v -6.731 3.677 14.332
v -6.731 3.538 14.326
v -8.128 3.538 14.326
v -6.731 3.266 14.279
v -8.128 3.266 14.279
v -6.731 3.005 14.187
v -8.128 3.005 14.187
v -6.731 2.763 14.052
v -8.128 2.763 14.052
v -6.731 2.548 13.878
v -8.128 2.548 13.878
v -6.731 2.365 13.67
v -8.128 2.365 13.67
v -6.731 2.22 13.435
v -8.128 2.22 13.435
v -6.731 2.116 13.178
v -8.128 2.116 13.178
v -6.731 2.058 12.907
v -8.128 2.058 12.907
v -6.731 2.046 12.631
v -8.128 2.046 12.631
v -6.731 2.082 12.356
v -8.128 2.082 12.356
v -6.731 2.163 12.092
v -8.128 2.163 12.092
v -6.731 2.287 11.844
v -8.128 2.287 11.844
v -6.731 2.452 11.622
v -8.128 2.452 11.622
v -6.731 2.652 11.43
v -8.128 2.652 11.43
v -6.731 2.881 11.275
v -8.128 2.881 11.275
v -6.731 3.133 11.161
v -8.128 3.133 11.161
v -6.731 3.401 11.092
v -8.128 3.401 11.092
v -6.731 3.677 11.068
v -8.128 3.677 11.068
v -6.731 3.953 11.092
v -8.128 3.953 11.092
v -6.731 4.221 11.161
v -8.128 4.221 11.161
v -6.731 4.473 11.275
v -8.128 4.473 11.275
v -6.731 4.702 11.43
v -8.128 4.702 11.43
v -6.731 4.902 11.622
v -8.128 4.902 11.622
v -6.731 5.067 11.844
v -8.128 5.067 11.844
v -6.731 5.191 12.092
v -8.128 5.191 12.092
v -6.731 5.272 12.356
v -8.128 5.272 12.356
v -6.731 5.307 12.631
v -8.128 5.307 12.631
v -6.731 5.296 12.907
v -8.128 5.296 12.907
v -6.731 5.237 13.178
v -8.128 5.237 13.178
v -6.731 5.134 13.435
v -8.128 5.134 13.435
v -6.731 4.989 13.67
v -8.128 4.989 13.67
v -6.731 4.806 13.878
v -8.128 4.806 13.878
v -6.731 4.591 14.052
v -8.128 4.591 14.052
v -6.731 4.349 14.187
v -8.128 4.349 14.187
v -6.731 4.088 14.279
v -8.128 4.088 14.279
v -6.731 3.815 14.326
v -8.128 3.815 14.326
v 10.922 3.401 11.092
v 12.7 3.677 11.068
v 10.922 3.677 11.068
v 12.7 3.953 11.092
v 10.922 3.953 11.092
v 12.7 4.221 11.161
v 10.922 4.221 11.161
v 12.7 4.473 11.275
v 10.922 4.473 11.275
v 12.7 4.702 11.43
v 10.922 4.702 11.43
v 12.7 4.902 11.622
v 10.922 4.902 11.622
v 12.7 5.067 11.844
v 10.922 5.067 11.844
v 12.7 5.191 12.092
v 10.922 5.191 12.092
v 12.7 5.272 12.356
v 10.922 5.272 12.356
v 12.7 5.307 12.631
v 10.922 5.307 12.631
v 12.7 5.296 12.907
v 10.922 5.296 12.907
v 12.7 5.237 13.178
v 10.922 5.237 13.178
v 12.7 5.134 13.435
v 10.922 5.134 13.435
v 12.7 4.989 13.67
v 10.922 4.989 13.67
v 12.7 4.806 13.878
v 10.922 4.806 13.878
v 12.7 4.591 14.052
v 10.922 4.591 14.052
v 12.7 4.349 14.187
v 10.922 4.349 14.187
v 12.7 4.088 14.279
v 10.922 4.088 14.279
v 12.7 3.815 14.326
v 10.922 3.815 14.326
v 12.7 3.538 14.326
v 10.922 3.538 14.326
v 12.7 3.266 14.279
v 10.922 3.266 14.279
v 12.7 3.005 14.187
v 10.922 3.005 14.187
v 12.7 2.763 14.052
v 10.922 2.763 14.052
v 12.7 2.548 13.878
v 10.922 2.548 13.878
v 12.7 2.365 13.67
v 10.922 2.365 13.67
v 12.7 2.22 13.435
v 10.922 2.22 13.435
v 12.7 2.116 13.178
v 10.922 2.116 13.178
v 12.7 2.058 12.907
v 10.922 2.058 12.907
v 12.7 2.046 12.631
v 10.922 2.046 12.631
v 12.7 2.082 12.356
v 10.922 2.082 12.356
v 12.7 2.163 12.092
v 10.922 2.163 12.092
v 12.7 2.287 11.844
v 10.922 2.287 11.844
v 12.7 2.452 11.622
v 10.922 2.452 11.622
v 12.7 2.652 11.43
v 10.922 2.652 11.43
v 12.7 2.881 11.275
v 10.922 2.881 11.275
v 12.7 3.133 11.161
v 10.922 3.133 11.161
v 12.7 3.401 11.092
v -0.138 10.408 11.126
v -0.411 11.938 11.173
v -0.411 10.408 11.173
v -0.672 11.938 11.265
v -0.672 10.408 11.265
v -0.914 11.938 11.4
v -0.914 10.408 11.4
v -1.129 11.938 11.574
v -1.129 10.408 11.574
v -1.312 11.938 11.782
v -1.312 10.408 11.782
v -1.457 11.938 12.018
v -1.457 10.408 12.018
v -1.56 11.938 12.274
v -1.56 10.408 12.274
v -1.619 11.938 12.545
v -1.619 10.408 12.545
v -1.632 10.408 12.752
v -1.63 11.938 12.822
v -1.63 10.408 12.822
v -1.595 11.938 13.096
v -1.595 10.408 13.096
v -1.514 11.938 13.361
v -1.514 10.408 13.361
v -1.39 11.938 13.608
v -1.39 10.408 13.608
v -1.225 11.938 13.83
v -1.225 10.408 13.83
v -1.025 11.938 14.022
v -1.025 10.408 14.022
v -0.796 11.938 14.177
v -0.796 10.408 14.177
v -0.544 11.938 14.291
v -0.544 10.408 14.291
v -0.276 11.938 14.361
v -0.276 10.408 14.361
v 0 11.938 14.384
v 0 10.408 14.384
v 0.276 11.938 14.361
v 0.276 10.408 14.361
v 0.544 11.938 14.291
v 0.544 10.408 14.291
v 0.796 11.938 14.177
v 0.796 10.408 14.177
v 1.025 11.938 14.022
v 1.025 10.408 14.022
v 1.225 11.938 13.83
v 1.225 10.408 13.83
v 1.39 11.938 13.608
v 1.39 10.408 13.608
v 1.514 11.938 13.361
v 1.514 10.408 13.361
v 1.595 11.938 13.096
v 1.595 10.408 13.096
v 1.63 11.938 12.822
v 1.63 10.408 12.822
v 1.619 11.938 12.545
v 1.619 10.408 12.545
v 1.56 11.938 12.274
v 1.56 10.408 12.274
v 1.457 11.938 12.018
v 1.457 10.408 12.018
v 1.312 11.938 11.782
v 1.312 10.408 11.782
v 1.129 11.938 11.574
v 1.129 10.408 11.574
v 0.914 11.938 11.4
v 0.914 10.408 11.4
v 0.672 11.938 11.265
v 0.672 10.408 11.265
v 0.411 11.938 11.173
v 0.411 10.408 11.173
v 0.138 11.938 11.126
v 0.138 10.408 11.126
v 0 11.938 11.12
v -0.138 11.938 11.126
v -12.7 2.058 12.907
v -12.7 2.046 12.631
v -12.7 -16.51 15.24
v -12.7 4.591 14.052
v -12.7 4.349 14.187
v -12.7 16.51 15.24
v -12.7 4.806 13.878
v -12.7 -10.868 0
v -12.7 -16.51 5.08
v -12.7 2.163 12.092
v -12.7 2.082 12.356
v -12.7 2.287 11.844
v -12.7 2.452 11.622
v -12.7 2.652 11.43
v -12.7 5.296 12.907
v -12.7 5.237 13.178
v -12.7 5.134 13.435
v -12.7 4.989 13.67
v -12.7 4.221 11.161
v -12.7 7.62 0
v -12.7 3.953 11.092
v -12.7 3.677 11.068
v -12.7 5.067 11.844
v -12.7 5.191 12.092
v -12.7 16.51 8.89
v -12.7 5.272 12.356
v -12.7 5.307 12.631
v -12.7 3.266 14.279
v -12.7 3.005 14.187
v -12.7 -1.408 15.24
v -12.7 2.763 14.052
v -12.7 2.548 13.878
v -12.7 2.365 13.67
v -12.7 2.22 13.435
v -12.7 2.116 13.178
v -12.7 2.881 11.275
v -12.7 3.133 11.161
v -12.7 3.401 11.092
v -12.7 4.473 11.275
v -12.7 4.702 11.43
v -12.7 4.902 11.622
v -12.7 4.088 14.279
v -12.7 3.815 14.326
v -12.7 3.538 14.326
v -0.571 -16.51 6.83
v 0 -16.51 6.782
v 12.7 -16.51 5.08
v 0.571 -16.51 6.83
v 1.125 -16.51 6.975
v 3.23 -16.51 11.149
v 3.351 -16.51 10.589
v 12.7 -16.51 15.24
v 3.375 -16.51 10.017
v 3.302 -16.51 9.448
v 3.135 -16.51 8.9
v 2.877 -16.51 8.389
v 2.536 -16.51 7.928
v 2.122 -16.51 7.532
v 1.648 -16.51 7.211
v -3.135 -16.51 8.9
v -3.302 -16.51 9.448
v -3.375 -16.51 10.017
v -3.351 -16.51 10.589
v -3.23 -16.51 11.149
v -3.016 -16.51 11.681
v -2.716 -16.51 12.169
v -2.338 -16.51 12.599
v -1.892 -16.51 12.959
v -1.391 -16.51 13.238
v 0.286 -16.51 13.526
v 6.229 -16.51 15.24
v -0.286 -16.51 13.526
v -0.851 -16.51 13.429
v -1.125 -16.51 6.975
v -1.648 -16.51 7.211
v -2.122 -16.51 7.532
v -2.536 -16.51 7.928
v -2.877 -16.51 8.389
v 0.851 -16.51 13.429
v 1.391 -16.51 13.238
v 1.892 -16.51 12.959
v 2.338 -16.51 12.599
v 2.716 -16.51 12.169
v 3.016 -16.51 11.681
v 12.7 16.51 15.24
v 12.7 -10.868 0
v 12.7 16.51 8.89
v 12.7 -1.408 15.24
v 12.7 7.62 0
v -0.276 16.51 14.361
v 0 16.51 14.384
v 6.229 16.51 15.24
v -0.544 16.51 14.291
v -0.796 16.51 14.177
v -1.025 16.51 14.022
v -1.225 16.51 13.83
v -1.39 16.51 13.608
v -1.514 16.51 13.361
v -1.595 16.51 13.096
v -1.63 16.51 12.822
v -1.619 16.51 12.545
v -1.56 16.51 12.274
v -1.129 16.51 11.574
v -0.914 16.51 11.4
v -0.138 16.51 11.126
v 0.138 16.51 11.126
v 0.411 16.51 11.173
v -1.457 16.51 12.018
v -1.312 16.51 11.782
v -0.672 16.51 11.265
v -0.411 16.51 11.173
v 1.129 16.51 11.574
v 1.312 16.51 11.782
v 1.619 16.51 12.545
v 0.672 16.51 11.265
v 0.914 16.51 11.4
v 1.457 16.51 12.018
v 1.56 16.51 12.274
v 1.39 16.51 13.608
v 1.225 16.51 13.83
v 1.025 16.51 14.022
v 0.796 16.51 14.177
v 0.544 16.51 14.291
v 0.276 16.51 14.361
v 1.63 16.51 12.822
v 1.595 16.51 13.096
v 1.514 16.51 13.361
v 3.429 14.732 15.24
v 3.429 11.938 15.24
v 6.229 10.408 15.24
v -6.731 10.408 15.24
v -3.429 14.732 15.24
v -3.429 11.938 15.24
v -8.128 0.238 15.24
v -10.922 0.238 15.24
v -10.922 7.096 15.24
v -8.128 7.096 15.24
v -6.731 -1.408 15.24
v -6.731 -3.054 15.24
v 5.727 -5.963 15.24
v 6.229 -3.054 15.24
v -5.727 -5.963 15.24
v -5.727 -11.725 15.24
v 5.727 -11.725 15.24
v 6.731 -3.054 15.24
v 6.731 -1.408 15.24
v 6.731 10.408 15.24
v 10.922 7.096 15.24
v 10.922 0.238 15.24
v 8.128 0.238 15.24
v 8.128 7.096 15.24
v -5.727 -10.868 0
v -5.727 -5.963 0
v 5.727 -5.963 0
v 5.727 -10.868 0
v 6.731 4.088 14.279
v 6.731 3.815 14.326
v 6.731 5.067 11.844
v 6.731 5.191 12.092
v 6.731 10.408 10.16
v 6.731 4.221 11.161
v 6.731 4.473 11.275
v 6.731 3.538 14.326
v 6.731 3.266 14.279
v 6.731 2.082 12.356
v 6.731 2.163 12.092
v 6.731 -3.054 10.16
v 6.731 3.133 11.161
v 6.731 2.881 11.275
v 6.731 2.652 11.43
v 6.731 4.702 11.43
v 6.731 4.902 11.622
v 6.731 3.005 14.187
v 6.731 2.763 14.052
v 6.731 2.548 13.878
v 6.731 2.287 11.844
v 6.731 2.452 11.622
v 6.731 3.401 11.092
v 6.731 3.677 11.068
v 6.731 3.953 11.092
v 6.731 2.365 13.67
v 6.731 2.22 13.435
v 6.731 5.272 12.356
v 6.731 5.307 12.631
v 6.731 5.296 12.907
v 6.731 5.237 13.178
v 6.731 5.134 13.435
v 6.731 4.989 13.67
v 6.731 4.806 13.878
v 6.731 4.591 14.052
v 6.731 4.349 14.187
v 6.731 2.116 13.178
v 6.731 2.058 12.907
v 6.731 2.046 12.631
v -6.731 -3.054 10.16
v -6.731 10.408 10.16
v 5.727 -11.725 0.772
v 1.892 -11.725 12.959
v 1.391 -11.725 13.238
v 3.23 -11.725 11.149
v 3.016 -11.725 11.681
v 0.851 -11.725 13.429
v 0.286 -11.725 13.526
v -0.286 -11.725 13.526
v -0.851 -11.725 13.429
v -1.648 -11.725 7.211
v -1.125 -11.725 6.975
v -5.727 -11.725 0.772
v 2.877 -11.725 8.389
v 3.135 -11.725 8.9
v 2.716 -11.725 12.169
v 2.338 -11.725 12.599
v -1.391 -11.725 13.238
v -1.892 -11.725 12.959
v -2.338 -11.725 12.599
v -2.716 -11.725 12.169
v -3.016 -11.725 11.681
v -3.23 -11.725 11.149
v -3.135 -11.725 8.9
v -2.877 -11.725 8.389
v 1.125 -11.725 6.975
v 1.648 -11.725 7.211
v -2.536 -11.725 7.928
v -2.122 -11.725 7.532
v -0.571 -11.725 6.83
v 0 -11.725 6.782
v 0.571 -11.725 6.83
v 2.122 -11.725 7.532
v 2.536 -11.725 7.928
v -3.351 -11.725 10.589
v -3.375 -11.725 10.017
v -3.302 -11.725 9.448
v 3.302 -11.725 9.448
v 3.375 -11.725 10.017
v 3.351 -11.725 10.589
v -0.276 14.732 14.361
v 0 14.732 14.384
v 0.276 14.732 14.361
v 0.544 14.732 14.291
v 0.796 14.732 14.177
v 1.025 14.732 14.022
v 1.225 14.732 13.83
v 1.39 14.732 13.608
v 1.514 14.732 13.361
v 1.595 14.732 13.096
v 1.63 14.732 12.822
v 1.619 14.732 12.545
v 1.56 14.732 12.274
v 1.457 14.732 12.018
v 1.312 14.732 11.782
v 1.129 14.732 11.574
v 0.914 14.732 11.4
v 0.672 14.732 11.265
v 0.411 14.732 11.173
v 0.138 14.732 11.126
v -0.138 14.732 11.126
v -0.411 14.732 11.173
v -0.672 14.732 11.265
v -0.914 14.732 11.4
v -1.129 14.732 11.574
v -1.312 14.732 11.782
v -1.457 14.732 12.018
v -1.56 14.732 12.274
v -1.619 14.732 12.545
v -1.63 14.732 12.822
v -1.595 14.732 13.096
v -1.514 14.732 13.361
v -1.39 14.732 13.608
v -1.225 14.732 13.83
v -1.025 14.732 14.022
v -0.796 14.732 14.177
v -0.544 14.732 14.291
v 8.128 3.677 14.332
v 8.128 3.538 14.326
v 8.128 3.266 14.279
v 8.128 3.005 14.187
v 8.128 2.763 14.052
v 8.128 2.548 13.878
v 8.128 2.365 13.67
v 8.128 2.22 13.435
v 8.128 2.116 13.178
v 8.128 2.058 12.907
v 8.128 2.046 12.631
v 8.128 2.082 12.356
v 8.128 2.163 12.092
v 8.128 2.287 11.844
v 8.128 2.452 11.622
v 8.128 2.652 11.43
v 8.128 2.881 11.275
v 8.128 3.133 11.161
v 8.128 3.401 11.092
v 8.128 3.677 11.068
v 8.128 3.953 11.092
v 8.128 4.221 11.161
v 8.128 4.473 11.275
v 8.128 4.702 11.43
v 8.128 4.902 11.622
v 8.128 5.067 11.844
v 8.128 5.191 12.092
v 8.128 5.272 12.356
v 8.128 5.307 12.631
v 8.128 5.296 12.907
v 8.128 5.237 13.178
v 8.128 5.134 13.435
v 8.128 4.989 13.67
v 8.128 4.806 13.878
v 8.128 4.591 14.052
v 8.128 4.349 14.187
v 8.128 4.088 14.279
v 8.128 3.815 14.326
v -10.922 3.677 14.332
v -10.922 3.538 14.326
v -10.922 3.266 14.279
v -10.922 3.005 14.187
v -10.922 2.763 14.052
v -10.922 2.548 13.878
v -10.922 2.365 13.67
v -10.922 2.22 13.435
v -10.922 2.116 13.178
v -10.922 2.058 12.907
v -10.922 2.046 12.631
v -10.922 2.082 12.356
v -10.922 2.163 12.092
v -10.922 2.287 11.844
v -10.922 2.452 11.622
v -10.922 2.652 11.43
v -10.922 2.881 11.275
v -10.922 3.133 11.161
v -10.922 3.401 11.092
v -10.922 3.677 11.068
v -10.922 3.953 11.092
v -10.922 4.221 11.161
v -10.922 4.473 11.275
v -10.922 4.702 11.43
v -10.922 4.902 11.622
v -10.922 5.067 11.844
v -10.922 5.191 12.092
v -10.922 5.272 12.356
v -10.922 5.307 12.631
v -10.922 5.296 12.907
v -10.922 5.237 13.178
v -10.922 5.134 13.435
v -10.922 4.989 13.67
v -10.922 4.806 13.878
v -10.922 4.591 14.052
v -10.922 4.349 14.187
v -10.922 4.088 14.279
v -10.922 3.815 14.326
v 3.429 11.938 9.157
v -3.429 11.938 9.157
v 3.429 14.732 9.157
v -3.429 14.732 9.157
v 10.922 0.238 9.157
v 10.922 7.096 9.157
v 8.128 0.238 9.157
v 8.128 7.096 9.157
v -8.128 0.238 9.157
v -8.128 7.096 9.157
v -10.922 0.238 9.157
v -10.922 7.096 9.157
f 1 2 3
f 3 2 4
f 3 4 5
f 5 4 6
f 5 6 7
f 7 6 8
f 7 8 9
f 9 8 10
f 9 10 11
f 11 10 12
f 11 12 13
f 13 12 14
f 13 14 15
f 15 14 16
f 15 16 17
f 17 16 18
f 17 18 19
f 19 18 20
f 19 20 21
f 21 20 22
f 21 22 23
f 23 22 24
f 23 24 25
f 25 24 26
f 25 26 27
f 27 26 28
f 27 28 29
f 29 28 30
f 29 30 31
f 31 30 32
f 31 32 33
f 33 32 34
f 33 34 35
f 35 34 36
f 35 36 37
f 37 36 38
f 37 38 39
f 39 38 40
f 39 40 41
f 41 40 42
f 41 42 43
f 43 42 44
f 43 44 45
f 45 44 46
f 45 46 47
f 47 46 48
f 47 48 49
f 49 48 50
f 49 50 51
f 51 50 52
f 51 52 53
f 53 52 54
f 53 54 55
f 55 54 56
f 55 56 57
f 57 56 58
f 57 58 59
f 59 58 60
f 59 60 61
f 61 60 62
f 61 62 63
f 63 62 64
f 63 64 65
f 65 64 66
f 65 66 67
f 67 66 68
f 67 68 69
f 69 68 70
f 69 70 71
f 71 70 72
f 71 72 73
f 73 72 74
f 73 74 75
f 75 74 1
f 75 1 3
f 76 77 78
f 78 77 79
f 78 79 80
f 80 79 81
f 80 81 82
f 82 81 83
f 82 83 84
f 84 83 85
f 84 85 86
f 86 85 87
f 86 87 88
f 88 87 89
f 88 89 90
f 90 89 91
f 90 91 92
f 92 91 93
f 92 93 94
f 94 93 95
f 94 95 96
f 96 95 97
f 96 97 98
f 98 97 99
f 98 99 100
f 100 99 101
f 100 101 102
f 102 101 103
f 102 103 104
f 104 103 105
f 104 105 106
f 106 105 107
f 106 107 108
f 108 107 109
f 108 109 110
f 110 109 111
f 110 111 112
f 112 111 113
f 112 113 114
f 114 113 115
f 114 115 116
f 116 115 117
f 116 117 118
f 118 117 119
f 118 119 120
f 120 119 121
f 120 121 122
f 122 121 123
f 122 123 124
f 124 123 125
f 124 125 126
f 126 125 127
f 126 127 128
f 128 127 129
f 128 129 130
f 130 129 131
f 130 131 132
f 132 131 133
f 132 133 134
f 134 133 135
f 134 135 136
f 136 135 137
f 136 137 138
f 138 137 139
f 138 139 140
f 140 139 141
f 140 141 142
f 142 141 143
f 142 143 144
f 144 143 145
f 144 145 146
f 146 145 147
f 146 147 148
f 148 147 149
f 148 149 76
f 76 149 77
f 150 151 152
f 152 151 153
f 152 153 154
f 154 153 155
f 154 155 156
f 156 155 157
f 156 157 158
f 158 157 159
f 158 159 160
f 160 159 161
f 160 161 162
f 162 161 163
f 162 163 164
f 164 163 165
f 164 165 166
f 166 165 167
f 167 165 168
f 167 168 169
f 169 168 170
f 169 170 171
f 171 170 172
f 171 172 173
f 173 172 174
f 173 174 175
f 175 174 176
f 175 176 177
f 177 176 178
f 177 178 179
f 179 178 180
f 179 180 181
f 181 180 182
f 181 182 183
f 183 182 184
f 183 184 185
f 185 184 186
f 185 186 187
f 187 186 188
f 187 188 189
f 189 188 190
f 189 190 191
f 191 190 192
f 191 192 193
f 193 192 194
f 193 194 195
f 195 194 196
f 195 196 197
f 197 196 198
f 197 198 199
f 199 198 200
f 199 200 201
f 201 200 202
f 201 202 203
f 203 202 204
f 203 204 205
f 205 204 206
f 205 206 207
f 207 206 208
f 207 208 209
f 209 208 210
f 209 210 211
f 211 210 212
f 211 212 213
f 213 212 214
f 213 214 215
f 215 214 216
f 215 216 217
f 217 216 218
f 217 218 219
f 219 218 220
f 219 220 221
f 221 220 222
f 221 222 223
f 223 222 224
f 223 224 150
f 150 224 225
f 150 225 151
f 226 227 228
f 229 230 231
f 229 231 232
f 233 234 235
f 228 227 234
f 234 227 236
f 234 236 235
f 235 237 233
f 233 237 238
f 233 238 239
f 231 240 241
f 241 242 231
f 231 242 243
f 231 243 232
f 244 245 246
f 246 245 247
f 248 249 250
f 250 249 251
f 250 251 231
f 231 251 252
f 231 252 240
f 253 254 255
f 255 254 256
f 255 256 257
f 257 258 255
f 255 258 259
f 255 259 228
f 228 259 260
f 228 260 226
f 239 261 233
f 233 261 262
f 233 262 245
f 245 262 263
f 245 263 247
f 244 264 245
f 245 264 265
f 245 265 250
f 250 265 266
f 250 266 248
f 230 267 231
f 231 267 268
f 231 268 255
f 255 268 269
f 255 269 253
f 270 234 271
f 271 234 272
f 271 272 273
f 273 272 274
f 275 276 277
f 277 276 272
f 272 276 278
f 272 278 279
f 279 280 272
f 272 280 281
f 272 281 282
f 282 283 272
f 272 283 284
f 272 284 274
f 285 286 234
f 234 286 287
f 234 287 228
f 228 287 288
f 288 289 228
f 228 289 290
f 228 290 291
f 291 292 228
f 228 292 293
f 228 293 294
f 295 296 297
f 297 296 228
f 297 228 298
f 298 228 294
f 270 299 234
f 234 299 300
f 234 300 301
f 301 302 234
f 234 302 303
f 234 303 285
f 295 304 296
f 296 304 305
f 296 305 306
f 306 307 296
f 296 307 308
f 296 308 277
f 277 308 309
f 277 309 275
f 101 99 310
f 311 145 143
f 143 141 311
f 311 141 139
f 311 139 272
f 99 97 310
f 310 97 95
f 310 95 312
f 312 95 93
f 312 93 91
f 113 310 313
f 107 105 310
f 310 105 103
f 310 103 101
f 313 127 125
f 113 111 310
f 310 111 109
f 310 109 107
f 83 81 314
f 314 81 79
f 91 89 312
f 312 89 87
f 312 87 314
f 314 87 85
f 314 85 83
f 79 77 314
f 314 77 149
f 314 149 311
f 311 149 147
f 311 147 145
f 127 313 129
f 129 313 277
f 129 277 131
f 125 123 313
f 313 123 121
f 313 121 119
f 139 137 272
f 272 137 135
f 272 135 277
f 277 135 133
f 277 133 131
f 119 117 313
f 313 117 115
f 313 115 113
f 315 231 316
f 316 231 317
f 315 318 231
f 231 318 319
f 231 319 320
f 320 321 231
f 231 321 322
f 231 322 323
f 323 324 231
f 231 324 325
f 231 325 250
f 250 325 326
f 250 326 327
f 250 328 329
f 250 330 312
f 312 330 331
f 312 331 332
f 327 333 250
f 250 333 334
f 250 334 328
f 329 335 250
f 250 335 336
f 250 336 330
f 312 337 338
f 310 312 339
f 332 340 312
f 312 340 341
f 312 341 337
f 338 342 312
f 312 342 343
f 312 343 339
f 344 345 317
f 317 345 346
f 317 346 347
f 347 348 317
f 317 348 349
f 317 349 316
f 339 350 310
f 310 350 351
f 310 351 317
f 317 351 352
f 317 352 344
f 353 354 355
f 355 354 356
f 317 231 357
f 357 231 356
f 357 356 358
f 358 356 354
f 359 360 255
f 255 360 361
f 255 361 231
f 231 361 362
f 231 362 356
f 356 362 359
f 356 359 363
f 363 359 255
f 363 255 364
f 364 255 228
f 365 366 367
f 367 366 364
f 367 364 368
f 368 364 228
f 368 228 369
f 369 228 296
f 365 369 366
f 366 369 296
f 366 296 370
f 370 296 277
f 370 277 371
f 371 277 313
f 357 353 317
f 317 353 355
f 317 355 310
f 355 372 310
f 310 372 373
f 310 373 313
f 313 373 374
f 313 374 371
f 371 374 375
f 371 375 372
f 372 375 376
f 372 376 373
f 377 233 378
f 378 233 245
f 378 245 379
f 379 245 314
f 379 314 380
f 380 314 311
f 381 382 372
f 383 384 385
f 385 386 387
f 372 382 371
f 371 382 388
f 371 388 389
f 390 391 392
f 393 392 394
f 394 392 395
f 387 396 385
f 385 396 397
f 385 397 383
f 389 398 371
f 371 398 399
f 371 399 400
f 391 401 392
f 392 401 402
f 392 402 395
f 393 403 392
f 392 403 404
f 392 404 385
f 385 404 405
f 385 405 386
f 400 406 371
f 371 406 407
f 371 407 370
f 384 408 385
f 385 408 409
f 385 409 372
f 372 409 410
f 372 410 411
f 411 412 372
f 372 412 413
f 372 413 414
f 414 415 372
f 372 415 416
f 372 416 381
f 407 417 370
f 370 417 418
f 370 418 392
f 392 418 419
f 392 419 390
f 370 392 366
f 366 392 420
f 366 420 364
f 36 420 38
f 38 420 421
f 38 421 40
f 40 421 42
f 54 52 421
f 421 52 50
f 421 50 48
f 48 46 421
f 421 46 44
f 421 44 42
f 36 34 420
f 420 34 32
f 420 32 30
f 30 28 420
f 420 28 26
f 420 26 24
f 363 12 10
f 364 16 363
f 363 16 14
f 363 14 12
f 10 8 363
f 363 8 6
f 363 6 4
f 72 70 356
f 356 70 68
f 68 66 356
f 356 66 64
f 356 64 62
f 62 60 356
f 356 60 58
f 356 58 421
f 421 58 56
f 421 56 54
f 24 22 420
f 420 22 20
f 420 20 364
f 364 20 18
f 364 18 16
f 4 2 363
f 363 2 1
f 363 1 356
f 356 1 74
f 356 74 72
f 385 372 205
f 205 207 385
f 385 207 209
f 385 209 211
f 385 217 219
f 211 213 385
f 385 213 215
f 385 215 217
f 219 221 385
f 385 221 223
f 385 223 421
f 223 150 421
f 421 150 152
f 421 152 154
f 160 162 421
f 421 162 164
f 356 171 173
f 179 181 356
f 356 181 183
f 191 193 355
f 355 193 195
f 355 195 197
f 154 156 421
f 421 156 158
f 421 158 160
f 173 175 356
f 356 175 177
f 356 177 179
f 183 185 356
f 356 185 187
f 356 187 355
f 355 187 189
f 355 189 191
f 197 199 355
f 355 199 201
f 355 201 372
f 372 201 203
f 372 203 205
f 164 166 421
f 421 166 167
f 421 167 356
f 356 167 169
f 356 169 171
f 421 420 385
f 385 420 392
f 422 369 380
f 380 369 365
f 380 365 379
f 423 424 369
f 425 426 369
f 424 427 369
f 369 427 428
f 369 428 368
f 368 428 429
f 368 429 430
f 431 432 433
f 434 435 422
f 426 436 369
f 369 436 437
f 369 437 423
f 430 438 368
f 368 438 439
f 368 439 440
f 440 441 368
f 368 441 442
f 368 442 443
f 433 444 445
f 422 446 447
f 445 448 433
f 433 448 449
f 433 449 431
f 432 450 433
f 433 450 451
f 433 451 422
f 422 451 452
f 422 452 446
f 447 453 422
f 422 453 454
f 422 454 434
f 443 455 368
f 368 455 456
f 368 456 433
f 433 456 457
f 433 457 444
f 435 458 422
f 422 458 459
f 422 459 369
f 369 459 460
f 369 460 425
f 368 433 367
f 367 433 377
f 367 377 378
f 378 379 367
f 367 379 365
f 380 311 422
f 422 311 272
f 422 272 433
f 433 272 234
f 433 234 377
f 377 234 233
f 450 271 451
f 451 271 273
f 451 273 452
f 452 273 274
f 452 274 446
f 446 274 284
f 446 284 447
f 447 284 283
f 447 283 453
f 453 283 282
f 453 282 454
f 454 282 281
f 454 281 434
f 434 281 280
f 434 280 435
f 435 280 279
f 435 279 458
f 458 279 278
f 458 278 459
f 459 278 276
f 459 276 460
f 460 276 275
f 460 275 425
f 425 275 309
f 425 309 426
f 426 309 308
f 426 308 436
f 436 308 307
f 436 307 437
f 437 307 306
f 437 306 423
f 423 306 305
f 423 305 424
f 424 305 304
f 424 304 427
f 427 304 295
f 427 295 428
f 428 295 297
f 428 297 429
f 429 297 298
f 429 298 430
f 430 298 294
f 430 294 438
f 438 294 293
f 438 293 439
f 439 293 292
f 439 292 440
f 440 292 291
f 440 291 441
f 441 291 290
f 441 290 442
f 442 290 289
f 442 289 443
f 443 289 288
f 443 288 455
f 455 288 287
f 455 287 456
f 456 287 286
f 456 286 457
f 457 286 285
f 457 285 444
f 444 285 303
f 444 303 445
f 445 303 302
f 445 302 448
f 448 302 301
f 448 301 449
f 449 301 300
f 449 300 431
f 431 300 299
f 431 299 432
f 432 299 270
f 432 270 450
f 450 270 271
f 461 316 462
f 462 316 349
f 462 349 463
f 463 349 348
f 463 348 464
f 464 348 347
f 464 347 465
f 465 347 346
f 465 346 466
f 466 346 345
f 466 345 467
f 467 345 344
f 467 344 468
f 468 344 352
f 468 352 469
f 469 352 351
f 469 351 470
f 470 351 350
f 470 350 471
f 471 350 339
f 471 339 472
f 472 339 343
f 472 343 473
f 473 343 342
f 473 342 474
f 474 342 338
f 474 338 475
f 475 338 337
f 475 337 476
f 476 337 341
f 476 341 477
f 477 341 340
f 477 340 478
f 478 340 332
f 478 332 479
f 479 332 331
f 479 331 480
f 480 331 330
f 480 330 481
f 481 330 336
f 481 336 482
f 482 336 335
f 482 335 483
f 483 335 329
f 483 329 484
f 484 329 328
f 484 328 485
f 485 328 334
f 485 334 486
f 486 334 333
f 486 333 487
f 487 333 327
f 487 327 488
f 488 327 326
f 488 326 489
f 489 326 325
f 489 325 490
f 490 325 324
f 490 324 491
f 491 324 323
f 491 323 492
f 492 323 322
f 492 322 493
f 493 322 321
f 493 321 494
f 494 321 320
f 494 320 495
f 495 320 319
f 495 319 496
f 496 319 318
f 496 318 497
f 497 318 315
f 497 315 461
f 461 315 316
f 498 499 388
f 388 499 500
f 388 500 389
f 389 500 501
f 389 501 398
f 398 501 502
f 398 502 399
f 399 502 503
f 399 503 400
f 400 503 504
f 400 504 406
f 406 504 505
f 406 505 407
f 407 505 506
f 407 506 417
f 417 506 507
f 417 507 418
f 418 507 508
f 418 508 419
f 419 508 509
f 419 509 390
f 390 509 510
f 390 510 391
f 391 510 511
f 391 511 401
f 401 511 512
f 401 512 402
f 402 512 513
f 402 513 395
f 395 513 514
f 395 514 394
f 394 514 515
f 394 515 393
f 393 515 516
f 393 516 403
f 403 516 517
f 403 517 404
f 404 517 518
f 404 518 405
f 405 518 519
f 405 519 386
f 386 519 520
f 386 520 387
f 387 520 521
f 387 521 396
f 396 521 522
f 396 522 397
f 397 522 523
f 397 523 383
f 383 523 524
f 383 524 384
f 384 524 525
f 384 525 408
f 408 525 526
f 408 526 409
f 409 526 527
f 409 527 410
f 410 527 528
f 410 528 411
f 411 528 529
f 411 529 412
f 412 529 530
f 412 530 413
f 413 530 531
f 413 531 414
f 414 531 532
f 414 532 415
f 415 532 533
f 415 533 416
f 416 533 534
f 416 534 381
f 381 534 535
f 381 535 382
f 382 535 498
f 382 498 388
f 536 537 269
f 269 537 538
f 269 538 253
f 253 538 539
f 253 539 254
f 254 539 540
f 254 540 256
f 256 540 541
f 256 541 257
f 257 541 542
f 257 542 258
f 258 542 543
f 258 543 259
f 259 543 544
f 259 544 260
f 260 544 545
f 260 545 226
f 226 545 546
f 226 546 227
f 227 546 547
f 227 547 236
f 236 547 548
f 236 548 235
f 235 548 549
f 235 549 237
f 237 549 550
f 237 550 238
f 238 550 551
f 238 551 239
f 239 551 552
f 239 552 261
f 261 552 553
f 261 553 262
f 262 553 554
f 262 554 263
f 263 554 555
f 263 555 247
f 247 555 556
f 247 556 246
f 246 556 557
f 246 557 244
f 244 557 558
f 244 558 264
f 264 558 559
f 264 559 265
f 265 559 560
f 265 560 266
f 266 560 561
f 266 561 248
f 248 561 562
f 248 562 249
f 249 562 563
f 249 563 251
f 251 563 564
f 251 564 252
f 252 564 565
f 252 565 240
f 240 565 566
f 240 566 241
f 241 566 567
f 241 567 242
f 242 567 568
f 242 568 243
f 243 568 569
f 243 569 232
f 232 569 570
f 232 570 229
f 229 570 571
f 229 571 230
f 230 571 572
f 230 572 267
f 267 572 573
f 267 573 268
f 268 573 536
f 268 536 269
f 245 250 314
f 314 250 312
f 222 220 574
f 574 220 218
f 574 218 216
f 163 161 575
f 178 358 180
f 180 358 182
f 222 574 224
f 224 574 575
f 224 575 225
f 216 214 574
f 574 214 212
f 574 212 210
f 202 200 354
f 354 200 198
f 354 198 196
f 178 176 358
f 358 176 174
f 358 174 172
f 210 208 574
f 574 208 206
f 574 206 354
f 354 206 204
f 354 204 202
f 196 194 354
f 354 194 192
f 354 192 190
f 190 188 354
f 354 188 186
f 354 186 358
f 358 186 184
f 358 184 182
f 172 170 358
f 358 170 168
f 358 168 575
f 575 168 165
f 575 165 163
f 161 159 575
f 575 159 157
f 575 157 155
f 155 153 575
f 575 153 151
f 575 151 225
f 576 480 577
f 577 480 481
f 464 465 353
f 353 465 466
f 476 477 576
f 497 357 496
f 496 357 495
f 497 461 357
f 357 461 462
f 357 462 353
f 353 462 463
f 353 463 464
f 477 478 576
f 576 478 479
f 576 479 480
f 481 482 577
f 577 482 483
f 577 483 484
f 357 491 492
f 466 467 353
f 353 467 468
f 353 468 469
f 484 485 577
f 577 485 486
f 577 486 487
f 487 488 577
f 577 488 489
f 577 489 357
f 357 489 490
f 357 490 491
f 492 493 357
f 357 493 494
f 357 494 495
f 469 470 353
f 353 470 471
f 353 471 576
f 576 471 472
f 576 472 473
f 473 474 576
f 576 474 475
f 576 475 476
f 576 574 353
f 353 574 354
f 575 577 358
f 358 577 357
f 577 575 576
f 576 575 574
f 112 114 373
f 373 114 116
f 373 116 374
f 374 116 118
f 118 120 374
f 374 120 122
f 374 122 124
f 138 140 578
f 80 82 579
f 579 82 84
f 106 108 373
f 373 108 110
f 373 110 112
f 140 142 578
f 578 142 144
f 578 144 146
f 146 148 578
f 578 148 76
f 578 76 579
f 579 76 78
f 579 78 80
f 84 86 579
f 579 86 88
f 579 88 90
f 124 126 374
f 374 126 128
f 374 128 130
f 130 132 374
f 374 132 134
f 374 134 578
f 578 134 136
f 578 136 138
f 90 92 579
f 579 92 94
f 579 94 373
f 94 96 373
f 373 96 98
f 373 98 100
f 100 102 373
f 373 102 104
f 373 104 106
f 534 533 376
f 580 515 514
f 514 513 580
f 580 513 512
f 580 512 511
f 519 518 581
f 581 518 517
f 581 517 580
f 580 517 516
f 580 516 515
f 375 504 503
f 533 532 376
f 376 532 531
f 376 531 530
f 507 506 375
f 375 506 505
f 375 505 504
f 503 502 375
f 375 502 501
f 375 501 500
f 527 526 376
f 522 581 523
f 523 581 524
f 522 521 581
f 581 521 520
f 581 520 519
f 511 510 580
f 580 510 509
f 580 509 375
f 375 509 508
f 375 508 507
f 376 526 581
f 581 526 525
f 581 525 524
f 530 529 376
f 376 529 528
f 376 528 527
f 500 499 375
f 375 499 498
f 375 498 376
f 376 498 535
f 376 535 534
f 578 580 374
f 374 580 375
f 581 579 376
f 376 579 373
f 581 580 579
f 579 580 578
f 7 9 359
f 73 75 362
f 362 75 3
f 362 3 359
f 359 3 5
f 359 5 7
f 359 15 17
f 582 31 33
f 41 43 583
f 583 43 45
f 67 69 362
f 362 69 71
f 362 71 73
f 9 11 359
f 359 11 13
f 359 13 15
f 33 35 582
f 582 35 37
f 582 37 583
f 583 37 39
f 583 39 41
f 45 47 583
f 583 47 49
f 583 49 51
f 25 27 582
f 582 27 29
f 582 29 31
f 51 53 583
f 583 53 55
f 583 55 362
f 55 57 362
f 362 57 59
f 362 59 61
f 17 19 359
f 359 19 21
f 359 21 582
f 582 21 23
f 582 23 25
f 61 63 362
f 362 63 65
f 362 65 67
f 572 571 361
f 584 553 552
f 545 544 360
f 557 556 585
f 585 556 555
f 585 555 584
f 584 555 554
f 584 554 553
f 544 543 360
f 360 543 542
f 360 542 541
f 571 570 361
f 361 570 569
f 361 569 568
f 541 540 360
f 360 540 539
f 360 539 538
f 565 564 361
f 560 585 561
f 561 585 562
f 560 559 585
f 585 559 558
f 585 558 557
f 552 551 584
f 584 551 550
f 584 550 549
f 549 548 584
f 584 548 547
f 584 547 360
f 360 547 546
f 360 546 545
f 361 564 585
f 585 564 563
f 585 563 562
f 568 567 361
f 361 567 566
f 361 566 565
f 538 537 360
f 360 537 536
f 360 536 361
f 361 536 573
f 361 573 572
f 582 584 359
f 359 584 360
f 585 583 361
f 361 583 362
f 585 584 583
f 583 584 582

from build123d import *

# Parameters (mm, degrees)
SKETCH1_W                    = 25.4
SKETCH1_H                    = 33.02
BOSS_EXTRUDE1_DEPTH          = 15.24
SKETCH2_W                    = 13.462
SKETCH2_H                    = 13.462
CUT_EXTRUDE1_DEPTH           = 5.08
SKETCH3_W                    = 11.45304241
SKETCH3_H                    = 5.762537062
CUT_EXTRUDE2_DEPTH           = 26.80944982
CHAMFER1_SIZE                = 5.08
CHAMFER1_SIZE_2              = 5.641911575
F_1_4_CLEARANCE_HOLE1_REACH  = 40.521
F_1_4_CLEARANCE_HOLE1_BORE_R = 3.3782
F_4_CLEARANCE_HOLE1_D        = 3.2639
F_4_CLEARANCE_HOLE1_DEPTH    = 6.102100278
F_4_CLEARANCE_HOLE2_D        = 3.2639
CHAMFER2_SIZE                = 8.89
SKETCH11_W                   = 6.858
SKETCH11_H                   = 2.794
SKETCH11_W_2                 = 2.794
SKETCH11_H_2                 = 6.858
CUT_EXTRUDE3_DEPTH           = 6.0833


with BuildPart() as part:
    # Sketch1 → Boss-Extrude1 (new body)
    with BuildSketch(Plane.XY):
        Rectangle(SKETCH1_W, SKETCH1_H)
    extrude(amount=BOSS_EXTRUDE1_DEPTH)

    # Sketch2 → Cut-Extrude1 (cut)
    with BuildSketch(Plane.XY.offset(15.24)):
        with Locations((0, 3.676899722)):
            Rectangle(SKETCH2_W, SKETCH2_H)
    extrude(amount=-CUT_EXTRUDE1_DEPTH, mode=Mode.SUBTRACT)

    # Sketch3 → Cut-Extrude2 (cut, through all)
    with BuildSketch(Plane.XY.offset(15.24)):
        with Locations((0, -8.844079083)):
            Rectangle(SKETCH3_W, SKETCH3_H)
    extrude(amount=-CUT_EXTRUDE2_DEPTH, mode=Mode.SUBTRACT)

    # Chamfer1
    # the kernel refuses this chamfer: 5.641911575, 5.08 mm, written as the material it takes off along each edge
    with BuildSketch(Plane(origin=(-27.228960176, -16.51, 0), x_dir=(0, -0.03204434000819542, 0.9994864482690293), z_dir=(1, 0, 0))) as chamfer1_piece_1:
        Polygon((CHAMFER1_SIZE * 0.999486448269, -CHAMFER1_SIZE * 0.0320443400082), (-CHAMFER1_SIZE_2 * 0.0320443400101, -CHAMFER1_SIZE_2 * 0.999486448328), (0, 0), align=None)
    extrude(amount=54.457920352, mode=Mode.SUBTRACT)

    # 1/4 Clearance Hole1 bore → 1/4 Clearance Hole1 (cut, up to next)
    with BuildSketch(Plane(origin=(0, -16.51, 0), x_dir=(-1, 0, 0), z_dir=(0, -1, 0)), mode=Mode.PRIVATE) as f_1_4_clearance_hole1_sk1:
        with Locations((0, -10.16)):
            Circle(F_1_4_CLEARANCE_HOLE1_BORE_R)
    f_1_4_clearance_hole1_tool1 = extrude(f_1_4_clearance_hole1_sk1.sketch, amount=-F_1_4_CLEARANCE_HOLE1_REACH, mode=Mode.PRIVATE) & part.part
    add(f_1_4_clearance_hole1_tool1.solids().sort_by_distance((0, -16.51, 10.16))[0], mode=Mode.SUBTRACT)

    # #4 Clearance Hole1
    with Locations(Plane(origin=(0, 16.51, 0), x_dir=(1, 0, 0), z_dir=(0, 1, 0))):
        with Locations((0, -12.752259571)):
            Hole(F_4_CLEARANCE_HOLE1_D / 2, depth=F_4_CLEARANCE_HOLE1_DEPTH)

    # #4 Clearance Hole2 (through all)
    with Locations(Plane(origin=(12.7, 0, 0), x_dir=(0, 0, -1), z_dir=(1, 0, 0))):
        with Locations((-12.7, 3.676899722)):
            Hole(F_4_CLEARANCE_HOLE2_D / 2)

    # Chamfer2
    chamfer2_edges = [part.edges().sort_by_distance(p)[0] for p in [
        (0, 16.51, 0),
    ]]
    chamfer(chamfer2_edges, length=CHAMFER2_SIZE)

    # Sketch11 → Cut-Extrude3 (cut)
    with BuildSketch(Plane.XY.offset(15.24)):
        with Locations((0, 13.335)):
            Rectangle(SKETCH11_W, SKETCH11_H)
        with Locations((9.525, 3.667057181)):
            Rectangle(SKETCH11_W_2, SKETCH11_H_2)
        with Locations((-9.525, 3.667057181)):
            Rectangle(SKETCH11_W_2, SKETCH11_H_2)
    extrude(amount=-CUT_EXTRUDE3_DEPTH, mode=Mode.SUBTRACT)


solid = part.part
